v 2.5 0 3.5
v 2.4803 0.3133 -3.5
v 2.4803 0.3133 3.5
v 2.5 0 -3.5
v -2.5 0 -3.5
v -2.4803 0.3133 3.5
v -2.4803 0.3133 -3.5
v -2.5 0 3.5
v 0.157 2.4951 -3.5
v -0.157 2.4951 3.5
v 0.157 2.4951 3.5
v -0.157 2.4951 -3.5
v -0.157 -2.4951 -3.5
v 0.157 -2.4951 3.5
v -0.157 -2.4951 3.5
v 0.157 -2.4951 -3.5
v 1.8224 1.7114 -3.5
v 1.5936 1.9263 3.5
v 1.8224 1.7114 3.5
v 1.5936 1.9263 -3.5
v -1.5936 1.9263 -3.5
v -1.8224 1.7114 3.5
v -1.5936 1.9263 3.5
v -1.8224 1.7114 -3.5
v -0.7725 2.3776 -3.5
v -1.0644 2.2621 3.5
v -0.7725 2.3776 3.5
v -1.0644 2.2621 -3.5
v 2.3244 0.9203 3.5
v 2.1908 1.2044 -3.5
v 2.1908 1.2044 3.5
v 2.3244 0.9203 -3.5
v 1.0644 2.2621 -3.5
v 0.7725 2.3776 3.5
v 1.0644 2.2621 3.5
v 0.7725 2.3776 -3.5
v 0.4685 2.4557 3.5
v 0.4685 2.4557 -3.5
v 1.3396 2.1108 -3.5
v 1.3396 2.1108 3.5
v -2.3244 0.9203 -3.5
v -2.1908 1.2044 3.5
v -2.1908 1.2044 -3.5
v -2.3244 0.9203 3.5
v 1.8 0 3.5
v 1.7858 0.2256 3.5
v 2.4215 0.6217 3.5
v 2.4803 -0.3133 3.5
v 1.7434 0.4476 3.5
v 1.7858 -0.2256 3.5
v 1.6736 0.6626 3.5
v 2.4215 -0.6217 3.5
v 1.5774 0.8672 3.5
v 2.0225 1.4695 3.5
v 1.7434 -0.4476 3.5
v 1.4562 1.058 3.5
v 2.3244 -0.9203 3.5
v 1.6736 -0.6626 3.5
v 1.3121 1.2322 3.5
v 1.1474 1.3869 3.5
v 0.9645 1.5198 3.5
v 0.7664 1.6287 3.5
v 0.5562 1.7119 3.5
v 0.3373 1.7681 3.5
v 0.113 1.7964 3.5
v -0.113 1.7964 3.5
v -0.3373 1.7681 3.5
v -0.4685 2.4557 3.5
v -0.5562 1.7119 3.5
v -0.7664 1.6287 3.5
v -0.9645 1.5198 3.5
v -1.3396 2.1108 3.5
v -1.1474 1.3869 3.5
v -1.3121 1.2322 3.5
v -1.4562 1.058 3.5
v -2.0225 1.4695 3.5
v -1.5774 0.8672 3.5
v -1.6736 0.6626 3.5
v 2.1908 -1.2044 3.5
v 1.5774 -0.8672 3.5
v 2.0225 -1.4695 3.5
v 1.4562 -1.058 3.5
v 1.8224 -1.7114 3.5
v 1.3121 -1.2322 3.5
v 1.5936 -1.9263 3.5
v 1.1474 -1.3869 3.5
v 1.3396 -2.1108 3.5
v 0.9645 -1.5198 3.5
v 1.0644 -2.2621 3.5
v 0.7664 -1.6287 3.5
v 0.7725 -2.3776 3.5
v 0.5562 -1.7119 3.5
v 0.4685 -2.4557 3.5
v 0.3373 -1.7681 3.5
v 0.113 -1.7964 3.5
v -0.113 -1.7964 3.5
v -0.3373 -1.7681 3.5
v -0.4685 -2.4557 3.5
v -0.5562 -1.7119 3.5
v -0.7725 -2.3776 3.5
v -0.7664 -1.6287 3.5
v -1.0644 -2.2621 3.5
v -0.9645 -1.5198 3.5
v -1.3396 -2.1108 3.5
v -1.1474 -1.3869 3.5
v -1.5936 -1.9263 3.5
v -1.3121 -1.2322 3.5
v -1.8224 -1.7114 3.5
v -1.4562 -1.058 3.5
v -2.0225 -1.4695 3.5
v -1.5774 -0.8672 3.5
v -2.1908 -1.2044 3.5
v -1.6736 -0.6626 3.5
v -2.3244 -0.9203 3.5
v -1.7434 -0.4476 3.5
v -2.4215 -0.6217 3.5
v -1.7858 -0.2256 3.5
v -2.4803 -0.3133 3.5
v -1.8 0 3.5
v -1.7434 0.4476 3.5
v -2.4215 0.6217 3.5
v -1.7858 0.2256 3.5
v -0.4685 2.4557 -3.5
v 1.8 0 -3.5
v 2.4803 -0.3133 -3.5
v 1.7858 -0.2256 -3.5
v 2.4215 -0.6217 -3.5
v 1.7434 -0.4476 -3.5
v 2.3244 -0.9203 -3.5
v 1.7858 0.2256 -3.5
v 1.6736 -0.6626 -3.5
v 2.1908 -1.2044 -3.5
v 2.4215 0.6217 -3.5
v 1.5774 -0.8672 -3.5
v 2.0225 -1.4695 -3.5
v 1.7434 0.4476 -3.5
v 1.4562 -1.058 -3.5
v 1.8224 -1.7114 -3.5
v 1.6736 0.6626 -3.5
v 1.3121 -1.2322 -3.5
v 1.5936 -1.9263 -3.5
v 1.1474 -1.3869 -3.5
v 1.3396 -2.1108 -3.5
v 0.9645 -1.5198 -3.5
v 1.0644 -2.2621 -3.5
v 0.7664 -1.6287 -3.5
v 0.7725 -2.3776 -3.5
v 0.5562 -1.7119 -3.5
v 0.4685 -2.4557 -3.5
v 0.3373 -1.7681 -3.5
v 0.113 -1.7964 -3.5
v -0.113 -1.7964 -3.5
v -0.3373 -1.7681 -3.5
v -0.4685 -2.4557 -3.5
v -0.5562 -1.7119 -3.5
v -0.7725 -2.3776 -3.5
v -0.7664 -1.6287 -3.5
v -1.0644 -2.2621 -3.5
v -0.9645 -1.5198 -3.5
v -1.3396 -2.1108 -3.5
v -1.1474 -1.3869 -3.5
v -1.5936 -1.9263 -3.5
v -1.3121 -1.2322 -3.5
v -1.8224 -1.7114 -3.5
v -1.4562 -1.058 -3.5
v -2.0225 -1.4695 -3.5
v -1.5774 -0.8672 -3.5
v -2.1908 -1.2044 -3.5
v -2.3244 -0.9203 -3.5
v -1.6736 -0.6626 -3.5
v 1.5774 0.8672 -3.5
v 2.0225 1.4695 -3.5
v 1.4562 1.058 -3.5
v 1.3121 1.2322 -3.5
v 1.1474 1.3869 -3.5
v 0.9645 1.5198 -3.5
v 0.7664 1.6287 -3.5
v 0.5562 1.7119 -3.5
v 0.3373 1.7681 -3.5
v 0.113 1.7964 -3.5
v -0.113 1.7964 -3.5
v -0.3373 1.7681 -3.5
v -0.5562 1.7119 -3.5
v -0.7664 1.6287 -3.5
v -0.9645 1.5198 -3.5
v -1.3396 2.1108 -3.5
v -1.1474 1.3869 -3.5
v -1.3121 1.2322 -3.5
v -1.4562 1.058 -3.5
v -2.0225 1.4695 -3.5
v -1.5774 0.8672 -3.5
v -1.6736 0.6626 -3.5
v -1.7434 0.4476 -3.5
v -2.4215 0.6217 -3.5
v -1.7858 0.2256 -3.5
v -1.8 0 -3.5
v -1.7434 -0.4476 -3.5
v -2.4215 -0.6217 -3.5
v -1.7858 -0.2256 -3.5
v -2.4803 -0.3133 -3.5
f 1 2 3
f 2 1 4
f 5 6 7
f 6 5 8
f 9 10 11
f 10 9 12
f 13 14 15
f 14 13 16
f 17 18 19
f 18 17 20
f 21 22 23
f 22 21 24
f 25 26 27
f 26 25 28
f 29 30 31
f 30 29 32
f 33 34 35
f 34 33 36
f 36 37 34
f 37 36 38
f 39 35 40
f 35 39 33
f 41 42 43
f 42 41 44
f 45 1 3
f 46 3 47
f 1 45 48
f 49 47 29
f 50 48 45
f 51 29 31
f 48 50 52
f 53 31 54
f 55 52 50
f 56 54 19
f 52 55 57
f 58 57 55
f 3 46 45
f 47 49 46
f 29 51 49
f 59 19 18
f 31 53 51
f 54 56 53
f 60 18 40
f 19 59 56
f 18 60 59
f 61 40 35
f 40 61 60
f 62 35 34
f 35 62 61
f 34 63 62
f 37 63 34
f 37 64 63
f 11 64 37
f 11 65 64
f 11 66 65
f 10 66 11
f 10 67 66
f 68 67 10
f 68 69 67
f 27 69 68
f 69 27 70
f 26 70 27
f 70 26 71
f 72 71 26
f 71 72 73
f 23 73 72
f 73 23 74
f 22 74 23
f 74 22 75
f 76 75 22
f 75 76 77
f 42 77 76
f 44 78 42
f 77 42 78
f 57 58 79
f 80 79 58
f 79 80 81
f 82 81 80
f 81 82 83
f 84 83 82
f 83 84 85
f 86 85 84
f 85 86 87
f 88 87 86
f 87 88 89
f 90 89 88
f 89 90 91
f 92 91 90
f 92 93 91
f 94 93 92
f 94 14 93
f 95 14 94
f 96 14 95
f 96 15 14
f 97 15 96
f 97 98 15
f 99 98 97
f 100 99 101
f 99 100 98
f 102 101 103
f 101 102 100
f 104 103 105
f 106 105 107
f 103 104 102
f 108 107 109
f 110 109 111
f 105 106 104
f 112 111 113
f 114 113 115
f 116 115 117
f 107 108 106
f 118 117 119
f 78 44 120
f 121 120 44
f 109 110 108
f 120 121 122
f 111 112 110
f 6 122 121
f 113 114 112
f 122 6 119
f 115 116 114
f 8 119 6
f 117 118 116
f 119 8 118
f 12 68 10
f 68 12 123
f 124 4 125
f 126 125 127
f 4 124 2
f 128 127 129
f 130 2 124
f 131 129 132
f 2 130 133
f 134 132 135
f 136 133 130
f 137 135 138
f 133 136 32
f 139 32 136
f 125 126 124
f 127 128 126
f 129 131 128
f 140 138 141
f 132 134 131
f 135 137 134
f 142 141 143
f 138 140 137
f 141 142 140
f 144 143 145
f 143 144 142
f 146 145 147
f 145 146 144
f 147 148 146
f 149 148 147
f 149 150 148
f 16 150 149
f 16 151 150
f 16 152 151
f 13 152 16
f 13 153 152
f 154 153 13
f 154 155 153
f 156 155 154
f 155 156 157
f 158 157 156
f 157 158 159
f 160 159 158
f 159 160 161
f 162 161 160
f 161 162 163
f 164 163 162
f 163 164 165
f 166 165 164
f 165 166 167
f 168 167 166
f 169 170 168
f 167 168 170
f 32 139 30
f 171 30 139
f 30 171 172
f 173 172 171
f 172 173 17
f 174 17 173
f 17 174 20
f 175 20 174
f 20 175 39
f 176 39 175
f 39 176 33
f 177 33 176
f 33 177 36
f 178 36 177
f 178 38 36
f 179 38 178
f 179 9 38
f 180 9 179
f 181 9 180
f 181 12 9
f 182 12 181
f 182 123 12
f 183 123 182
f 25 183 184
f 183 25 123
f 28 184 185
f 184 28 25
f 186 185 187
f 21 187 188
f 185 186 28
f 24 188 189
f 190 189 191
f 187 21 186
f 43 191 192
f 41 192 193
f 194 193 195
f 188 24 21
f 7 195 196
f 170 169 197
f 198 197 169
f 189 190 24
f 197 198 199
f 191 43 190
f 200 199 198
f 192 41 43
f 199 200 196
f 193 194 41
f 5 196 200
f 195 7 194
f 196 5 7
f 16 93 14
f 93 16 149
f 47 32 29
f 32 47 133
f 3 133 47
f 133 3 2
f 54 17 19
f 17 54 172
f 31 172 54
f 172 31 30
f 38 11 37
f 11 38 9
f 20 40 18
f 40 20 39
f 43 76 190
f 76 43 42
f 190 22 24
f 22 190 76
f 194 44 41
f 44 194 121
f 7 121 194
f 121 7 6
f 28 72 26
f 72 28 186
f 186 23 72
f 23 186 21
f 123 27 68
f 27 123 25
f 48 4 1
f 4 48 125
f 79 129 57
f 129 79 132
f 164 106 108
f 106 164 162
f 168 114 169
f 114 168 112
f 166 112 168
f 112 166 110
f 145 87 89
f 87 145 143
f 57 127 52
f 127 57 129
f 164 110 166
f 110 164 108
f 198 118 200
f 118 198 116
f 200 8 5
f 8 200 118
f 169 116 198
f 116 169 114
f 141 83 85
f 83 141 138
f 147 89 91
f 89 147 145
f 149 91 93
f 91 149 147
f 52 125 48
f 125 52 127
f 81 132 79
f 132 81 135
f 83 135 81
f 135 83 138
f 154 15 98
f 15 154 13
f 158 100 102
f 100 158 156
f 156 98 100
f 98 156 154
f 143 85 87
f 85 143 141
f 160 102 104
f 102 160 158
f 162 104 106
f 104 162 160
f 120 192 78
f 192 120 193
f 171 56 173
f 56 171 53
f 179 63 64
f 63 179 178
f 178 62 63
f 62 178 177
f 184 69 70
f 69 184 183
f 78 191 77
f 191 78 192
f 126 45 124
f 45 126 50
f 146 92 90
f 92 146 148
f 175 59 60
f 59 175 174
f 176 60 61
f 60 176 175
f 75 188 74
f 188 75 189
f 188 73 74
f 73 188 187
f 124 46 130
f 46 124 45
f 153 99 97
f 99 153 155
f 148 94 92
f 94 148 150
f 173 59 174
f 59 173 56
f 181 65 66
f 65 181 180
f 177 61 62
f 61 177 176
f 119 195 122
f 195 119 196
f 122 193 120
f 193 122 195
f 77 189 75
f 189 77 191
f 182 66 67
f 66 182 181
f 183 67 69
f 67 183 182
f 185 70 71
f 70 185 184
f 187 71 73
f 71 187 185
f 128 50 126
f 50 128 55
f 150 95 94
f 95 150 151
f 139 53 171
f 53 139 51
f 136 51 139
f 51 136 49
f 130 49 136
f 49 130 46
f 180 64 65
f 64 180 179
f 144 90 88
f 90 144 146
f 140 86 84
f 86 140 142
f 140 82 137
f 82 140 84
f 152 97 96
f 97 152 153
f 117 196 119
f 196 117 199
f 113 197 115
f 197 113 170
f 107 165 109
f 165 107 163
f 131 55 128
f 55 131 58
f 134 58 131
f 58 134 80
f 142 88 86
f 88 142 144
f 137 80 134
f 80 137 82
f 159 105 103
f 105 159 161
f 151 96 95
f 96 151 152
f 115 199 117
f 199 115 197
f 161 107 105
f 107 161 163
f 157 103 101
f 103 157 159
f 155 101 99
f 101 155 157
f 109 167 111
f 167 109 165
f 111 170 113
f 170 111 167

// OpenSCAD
$fn = 50;


difference() {
	union() {
		translate(v = [0, 0, -3.5000000000]) {
			cylinder(h = 7, r = 2.5000000000);
		}
	}
	union() {
		translate(v = [0, 0, -100.0000000000]) {
			cylinder(h = 200, r = 1.8000000000);
		}
	}
}
